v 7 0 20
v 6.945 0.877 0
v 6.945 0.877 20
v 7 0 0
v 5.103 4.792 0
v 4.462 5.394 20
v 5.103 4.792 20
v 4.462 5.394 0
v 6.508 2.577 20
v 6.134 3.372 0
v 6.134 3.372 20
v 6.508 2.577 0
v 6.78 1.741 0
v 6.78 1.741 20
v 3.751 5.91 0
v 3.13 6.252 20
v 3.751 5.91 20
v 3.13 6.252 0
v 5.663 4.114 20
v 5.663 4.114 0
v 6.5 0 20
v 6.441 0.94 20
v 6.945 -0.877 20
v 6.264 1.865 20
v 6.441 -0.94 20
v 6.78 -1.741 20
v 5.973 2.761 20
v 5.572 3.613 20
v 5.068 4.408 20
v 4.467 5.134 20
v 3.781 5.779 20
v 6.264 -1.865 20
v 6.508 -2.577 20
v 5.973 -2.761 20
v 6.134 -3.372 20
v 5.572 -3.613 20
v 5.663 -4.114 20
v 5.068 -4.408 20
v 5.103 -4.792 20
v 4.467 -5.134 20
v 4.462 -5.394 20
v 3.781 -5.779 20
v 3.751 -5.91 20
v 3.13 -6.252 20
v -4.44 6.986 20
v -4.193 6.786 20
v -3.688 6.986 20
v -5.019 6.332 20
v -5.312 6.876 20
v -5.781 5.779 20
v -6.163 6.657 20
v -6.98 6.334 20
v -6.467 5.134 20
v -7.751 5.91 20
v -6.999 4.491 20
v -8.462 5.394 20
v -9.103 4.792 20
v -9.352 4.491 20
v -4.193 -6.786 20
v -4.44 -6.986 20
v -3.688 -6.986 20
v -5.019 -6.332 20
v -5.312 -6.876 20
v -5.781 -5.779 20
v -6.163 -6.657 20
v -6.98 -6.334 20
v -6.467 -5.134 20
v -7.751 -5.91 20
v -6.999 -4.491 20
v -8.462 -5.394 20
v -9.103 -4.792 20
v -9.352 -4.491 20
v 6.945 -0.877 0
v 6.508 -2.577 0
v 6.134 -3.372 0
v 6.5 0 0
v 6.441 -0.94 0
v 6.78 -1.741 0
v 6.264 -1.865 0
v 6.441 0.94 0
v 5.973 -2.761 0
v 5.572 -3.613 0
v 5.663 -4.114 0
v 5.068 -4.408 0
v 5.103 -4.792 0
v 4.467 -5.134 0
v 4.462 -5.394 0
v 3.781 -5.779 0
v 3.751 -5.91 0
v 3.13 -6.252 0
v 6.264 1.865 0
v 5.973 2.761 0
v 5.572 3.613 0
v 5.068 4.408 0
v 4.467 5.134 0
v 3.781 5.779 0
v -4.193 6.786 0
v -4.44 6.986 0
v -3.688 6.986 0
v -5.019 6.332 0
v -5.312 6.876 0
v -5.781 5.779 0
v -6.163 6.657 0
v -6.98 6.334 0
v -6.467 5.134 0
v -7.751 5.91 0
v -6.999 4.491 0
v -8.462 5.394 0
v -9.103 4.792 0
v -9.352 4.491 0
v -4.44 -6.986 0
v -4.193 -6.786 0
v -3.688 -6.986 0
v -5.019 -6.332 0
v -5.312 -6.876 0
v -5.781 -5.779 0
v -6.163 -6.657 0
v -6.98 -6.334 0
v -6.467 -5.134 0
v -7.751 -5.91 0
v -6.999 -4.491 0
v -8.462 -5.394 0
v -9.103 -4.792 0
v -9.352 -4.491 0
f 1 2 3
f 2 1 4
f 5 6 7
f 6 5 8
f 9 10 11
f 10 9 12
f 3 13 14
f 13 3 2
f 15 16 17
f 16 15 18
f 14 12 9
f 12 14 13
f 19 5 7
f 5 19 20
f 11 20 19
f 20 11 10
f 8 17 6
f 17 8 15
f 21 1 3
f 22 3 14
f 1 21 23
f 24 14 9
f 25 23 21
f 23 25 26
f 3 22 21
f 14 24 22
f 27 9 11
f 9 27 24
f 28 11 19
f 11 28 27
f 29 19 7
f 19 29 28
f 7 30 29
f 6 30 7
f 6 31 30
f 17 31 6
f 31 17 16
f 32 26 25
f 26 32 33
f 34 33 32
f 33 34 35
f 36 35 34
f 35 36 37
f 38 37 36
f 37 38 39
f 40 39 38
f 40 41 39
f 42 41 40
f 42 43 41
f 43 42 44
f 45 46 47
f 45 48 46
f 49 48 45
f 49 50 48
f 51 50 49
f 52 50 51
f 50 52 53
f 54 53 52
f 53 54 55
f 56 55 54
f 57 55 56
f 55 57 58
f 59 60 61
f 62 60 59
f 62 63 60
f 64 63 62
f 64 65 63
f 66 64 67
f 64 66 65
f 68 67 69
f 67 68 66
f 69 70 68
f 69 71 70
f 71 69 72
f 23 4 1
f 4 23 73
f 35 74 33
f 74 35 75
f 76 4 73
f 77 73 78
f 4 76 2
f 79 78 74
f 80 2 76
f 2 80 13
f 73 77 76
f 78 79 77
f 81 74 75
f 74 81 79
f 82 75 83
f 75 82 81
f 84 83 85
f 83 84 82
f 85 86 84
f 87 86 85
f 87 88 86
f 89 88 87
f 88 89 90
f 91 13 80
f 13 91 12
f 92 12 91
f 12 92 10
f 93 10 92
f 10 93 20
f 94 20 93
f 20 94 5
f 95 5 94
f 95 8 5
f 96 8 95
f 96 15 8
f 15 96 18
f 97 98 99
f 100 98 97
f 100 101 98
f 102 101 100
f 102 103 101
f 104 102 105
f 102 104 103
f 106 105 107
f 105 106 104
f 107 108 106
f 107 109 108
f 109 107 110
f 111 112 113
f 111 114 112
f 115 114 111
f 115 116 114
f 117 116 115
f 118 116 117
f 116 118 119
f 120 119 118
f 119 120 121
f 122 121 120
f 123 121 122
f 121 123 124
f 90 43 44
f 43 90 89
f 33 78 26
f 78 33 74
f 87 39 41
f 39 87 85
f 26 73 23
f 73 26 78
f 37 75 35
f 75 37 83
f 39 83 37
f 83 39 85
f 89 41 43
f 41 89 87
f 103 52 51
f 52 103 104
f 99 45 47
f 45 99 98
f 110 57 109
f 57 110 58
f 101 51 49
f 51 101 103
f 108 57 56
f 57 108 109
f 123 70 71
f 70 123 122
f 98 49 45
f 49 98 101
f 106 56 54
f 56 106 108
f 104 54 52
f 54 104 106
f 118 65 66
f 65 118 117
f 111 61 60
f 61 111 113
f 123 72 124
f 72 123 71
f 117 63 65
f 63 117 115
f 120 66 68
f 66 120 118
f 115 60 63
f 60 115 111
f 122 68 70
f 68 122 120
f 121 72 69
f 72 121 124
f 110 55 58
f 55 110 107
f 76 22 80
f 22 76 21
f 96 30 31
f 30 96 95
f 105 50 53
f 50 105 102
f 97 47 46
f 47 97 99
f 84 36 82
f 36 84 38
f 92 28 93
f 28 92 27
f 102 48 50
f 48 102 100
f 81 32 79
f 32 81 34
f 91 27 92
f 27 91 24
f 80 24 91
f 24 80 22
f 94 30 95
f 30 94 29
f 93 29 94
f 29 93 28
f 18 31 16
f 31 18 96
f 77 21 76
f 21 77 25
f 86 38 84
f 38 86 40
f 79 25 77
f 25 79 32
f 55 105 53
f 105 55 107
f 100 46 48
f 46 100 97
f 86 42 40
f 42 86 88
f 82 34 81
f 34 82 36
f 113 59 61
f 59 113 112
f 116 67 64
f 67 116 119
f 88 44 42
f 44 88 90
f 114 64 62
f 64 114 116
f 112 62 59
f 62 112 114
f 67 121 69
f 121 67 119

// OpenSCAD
$fn = 50;


difference() {
	union() {
		cylinder(h = 20, r = 7.0000000000);
		translate(v = [-4.0000000000, 0, 0]) {
			cylinder(h = 20, r = 7.0000000000);
		}
	}
	union() {
		cylinder(h = 20, r = 3.2500000000);
		cylinder(h = 20, r = 1.8000000000);
		cylinder(h = 20, r = 1.8000000000);
		cylinder(h = 20, r = 1.8000000000);
		translate(v = [-8.5000000000, 0, 0]) {
			hull() {
				translate(v = [-3.7500000000, 0.0000000000, 0]) {
					cylinder(h = 20, r = 4.5000000000);
				}
				translate(v = [3.7500000000, 0.0000000000, 0]) {
					cylinder(h = 20, r = 4.5000000000);
				}
				translate(v = [-3.7500000000, -0.0000000000, 0]) {
					cylinder(h = 20, r = 4.5000000000);
				}
				translate(v = [3.7500000000, -0.0000000000, 0]) {
					cylinder(h = 20, r = 4.5000000000);
				}
			}
		}
		translate(v = [-1.0000000000, 0, 0.0000000000]) {
			cylinder(h = 20, r = 7.5000000000);
		}
	}
}
